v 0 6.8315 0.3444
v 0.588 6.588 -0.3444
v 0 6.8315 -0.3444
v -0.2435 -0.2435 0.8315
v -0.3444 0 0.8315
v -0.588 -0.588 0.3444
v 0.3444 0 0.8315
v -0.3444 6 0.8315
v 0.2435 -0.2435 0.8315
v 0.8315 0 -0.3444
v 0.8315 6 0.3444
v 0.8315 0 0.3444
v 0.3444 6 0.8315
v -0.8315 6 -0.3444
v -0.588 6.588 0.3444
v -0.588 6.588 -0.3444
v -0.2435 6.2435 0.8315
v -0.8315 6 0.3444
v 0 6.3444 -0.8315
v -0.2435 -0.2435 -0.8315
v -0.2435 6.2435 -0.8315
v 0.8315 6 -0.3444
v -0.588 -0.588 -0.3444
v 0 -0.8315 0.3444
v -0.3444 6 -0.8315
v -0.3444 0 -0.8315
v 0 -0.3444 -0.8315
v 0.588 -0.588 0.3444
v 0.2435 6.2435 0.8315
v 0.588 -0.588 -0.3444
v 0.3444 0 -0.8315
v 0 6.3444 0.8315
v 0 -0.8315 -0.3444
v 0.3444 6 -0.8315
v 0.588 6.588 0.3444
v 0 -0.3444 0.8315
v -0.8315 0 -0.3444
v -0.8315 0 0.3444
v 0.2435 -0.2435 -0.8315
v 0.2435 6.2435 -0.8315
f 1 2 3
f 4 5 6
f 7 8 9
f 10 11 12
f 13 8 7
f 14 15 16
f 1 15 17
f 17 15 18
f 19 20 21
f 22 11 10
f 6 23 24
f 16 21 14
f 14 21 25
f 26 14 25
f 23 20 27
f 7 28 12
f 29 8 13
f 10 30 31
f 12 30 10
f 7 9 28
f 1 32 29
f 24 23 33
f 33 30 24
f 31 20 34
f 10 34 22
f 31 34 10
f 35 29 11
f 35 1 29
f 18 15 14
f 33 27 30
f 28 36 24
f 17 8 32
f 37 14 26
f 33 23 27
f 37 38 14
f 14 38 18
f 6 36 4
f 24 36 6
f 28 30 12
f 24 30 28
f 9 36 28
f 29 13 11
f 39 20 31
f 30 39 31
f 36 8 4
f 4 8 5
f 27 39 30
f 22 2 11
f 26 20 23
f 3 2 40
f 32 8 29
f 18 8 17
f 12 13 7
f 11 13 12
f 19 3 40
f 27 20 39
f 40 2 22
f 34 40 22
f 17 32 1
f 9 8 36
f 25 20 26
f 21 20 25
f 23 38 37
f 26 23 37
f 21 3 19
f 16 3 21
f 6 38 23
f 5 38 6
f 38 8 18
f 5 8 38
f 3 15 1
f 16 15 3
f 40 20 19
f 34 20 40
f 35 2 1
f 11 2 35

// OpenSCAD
module rod(a, b, r) {
        hull() {
            translate(a) sphere(r,$fn=8);
            translate(b) sphere(r,$fn=8);
        }
    }

rod([0,0,0],[0,6,0],0.9);
